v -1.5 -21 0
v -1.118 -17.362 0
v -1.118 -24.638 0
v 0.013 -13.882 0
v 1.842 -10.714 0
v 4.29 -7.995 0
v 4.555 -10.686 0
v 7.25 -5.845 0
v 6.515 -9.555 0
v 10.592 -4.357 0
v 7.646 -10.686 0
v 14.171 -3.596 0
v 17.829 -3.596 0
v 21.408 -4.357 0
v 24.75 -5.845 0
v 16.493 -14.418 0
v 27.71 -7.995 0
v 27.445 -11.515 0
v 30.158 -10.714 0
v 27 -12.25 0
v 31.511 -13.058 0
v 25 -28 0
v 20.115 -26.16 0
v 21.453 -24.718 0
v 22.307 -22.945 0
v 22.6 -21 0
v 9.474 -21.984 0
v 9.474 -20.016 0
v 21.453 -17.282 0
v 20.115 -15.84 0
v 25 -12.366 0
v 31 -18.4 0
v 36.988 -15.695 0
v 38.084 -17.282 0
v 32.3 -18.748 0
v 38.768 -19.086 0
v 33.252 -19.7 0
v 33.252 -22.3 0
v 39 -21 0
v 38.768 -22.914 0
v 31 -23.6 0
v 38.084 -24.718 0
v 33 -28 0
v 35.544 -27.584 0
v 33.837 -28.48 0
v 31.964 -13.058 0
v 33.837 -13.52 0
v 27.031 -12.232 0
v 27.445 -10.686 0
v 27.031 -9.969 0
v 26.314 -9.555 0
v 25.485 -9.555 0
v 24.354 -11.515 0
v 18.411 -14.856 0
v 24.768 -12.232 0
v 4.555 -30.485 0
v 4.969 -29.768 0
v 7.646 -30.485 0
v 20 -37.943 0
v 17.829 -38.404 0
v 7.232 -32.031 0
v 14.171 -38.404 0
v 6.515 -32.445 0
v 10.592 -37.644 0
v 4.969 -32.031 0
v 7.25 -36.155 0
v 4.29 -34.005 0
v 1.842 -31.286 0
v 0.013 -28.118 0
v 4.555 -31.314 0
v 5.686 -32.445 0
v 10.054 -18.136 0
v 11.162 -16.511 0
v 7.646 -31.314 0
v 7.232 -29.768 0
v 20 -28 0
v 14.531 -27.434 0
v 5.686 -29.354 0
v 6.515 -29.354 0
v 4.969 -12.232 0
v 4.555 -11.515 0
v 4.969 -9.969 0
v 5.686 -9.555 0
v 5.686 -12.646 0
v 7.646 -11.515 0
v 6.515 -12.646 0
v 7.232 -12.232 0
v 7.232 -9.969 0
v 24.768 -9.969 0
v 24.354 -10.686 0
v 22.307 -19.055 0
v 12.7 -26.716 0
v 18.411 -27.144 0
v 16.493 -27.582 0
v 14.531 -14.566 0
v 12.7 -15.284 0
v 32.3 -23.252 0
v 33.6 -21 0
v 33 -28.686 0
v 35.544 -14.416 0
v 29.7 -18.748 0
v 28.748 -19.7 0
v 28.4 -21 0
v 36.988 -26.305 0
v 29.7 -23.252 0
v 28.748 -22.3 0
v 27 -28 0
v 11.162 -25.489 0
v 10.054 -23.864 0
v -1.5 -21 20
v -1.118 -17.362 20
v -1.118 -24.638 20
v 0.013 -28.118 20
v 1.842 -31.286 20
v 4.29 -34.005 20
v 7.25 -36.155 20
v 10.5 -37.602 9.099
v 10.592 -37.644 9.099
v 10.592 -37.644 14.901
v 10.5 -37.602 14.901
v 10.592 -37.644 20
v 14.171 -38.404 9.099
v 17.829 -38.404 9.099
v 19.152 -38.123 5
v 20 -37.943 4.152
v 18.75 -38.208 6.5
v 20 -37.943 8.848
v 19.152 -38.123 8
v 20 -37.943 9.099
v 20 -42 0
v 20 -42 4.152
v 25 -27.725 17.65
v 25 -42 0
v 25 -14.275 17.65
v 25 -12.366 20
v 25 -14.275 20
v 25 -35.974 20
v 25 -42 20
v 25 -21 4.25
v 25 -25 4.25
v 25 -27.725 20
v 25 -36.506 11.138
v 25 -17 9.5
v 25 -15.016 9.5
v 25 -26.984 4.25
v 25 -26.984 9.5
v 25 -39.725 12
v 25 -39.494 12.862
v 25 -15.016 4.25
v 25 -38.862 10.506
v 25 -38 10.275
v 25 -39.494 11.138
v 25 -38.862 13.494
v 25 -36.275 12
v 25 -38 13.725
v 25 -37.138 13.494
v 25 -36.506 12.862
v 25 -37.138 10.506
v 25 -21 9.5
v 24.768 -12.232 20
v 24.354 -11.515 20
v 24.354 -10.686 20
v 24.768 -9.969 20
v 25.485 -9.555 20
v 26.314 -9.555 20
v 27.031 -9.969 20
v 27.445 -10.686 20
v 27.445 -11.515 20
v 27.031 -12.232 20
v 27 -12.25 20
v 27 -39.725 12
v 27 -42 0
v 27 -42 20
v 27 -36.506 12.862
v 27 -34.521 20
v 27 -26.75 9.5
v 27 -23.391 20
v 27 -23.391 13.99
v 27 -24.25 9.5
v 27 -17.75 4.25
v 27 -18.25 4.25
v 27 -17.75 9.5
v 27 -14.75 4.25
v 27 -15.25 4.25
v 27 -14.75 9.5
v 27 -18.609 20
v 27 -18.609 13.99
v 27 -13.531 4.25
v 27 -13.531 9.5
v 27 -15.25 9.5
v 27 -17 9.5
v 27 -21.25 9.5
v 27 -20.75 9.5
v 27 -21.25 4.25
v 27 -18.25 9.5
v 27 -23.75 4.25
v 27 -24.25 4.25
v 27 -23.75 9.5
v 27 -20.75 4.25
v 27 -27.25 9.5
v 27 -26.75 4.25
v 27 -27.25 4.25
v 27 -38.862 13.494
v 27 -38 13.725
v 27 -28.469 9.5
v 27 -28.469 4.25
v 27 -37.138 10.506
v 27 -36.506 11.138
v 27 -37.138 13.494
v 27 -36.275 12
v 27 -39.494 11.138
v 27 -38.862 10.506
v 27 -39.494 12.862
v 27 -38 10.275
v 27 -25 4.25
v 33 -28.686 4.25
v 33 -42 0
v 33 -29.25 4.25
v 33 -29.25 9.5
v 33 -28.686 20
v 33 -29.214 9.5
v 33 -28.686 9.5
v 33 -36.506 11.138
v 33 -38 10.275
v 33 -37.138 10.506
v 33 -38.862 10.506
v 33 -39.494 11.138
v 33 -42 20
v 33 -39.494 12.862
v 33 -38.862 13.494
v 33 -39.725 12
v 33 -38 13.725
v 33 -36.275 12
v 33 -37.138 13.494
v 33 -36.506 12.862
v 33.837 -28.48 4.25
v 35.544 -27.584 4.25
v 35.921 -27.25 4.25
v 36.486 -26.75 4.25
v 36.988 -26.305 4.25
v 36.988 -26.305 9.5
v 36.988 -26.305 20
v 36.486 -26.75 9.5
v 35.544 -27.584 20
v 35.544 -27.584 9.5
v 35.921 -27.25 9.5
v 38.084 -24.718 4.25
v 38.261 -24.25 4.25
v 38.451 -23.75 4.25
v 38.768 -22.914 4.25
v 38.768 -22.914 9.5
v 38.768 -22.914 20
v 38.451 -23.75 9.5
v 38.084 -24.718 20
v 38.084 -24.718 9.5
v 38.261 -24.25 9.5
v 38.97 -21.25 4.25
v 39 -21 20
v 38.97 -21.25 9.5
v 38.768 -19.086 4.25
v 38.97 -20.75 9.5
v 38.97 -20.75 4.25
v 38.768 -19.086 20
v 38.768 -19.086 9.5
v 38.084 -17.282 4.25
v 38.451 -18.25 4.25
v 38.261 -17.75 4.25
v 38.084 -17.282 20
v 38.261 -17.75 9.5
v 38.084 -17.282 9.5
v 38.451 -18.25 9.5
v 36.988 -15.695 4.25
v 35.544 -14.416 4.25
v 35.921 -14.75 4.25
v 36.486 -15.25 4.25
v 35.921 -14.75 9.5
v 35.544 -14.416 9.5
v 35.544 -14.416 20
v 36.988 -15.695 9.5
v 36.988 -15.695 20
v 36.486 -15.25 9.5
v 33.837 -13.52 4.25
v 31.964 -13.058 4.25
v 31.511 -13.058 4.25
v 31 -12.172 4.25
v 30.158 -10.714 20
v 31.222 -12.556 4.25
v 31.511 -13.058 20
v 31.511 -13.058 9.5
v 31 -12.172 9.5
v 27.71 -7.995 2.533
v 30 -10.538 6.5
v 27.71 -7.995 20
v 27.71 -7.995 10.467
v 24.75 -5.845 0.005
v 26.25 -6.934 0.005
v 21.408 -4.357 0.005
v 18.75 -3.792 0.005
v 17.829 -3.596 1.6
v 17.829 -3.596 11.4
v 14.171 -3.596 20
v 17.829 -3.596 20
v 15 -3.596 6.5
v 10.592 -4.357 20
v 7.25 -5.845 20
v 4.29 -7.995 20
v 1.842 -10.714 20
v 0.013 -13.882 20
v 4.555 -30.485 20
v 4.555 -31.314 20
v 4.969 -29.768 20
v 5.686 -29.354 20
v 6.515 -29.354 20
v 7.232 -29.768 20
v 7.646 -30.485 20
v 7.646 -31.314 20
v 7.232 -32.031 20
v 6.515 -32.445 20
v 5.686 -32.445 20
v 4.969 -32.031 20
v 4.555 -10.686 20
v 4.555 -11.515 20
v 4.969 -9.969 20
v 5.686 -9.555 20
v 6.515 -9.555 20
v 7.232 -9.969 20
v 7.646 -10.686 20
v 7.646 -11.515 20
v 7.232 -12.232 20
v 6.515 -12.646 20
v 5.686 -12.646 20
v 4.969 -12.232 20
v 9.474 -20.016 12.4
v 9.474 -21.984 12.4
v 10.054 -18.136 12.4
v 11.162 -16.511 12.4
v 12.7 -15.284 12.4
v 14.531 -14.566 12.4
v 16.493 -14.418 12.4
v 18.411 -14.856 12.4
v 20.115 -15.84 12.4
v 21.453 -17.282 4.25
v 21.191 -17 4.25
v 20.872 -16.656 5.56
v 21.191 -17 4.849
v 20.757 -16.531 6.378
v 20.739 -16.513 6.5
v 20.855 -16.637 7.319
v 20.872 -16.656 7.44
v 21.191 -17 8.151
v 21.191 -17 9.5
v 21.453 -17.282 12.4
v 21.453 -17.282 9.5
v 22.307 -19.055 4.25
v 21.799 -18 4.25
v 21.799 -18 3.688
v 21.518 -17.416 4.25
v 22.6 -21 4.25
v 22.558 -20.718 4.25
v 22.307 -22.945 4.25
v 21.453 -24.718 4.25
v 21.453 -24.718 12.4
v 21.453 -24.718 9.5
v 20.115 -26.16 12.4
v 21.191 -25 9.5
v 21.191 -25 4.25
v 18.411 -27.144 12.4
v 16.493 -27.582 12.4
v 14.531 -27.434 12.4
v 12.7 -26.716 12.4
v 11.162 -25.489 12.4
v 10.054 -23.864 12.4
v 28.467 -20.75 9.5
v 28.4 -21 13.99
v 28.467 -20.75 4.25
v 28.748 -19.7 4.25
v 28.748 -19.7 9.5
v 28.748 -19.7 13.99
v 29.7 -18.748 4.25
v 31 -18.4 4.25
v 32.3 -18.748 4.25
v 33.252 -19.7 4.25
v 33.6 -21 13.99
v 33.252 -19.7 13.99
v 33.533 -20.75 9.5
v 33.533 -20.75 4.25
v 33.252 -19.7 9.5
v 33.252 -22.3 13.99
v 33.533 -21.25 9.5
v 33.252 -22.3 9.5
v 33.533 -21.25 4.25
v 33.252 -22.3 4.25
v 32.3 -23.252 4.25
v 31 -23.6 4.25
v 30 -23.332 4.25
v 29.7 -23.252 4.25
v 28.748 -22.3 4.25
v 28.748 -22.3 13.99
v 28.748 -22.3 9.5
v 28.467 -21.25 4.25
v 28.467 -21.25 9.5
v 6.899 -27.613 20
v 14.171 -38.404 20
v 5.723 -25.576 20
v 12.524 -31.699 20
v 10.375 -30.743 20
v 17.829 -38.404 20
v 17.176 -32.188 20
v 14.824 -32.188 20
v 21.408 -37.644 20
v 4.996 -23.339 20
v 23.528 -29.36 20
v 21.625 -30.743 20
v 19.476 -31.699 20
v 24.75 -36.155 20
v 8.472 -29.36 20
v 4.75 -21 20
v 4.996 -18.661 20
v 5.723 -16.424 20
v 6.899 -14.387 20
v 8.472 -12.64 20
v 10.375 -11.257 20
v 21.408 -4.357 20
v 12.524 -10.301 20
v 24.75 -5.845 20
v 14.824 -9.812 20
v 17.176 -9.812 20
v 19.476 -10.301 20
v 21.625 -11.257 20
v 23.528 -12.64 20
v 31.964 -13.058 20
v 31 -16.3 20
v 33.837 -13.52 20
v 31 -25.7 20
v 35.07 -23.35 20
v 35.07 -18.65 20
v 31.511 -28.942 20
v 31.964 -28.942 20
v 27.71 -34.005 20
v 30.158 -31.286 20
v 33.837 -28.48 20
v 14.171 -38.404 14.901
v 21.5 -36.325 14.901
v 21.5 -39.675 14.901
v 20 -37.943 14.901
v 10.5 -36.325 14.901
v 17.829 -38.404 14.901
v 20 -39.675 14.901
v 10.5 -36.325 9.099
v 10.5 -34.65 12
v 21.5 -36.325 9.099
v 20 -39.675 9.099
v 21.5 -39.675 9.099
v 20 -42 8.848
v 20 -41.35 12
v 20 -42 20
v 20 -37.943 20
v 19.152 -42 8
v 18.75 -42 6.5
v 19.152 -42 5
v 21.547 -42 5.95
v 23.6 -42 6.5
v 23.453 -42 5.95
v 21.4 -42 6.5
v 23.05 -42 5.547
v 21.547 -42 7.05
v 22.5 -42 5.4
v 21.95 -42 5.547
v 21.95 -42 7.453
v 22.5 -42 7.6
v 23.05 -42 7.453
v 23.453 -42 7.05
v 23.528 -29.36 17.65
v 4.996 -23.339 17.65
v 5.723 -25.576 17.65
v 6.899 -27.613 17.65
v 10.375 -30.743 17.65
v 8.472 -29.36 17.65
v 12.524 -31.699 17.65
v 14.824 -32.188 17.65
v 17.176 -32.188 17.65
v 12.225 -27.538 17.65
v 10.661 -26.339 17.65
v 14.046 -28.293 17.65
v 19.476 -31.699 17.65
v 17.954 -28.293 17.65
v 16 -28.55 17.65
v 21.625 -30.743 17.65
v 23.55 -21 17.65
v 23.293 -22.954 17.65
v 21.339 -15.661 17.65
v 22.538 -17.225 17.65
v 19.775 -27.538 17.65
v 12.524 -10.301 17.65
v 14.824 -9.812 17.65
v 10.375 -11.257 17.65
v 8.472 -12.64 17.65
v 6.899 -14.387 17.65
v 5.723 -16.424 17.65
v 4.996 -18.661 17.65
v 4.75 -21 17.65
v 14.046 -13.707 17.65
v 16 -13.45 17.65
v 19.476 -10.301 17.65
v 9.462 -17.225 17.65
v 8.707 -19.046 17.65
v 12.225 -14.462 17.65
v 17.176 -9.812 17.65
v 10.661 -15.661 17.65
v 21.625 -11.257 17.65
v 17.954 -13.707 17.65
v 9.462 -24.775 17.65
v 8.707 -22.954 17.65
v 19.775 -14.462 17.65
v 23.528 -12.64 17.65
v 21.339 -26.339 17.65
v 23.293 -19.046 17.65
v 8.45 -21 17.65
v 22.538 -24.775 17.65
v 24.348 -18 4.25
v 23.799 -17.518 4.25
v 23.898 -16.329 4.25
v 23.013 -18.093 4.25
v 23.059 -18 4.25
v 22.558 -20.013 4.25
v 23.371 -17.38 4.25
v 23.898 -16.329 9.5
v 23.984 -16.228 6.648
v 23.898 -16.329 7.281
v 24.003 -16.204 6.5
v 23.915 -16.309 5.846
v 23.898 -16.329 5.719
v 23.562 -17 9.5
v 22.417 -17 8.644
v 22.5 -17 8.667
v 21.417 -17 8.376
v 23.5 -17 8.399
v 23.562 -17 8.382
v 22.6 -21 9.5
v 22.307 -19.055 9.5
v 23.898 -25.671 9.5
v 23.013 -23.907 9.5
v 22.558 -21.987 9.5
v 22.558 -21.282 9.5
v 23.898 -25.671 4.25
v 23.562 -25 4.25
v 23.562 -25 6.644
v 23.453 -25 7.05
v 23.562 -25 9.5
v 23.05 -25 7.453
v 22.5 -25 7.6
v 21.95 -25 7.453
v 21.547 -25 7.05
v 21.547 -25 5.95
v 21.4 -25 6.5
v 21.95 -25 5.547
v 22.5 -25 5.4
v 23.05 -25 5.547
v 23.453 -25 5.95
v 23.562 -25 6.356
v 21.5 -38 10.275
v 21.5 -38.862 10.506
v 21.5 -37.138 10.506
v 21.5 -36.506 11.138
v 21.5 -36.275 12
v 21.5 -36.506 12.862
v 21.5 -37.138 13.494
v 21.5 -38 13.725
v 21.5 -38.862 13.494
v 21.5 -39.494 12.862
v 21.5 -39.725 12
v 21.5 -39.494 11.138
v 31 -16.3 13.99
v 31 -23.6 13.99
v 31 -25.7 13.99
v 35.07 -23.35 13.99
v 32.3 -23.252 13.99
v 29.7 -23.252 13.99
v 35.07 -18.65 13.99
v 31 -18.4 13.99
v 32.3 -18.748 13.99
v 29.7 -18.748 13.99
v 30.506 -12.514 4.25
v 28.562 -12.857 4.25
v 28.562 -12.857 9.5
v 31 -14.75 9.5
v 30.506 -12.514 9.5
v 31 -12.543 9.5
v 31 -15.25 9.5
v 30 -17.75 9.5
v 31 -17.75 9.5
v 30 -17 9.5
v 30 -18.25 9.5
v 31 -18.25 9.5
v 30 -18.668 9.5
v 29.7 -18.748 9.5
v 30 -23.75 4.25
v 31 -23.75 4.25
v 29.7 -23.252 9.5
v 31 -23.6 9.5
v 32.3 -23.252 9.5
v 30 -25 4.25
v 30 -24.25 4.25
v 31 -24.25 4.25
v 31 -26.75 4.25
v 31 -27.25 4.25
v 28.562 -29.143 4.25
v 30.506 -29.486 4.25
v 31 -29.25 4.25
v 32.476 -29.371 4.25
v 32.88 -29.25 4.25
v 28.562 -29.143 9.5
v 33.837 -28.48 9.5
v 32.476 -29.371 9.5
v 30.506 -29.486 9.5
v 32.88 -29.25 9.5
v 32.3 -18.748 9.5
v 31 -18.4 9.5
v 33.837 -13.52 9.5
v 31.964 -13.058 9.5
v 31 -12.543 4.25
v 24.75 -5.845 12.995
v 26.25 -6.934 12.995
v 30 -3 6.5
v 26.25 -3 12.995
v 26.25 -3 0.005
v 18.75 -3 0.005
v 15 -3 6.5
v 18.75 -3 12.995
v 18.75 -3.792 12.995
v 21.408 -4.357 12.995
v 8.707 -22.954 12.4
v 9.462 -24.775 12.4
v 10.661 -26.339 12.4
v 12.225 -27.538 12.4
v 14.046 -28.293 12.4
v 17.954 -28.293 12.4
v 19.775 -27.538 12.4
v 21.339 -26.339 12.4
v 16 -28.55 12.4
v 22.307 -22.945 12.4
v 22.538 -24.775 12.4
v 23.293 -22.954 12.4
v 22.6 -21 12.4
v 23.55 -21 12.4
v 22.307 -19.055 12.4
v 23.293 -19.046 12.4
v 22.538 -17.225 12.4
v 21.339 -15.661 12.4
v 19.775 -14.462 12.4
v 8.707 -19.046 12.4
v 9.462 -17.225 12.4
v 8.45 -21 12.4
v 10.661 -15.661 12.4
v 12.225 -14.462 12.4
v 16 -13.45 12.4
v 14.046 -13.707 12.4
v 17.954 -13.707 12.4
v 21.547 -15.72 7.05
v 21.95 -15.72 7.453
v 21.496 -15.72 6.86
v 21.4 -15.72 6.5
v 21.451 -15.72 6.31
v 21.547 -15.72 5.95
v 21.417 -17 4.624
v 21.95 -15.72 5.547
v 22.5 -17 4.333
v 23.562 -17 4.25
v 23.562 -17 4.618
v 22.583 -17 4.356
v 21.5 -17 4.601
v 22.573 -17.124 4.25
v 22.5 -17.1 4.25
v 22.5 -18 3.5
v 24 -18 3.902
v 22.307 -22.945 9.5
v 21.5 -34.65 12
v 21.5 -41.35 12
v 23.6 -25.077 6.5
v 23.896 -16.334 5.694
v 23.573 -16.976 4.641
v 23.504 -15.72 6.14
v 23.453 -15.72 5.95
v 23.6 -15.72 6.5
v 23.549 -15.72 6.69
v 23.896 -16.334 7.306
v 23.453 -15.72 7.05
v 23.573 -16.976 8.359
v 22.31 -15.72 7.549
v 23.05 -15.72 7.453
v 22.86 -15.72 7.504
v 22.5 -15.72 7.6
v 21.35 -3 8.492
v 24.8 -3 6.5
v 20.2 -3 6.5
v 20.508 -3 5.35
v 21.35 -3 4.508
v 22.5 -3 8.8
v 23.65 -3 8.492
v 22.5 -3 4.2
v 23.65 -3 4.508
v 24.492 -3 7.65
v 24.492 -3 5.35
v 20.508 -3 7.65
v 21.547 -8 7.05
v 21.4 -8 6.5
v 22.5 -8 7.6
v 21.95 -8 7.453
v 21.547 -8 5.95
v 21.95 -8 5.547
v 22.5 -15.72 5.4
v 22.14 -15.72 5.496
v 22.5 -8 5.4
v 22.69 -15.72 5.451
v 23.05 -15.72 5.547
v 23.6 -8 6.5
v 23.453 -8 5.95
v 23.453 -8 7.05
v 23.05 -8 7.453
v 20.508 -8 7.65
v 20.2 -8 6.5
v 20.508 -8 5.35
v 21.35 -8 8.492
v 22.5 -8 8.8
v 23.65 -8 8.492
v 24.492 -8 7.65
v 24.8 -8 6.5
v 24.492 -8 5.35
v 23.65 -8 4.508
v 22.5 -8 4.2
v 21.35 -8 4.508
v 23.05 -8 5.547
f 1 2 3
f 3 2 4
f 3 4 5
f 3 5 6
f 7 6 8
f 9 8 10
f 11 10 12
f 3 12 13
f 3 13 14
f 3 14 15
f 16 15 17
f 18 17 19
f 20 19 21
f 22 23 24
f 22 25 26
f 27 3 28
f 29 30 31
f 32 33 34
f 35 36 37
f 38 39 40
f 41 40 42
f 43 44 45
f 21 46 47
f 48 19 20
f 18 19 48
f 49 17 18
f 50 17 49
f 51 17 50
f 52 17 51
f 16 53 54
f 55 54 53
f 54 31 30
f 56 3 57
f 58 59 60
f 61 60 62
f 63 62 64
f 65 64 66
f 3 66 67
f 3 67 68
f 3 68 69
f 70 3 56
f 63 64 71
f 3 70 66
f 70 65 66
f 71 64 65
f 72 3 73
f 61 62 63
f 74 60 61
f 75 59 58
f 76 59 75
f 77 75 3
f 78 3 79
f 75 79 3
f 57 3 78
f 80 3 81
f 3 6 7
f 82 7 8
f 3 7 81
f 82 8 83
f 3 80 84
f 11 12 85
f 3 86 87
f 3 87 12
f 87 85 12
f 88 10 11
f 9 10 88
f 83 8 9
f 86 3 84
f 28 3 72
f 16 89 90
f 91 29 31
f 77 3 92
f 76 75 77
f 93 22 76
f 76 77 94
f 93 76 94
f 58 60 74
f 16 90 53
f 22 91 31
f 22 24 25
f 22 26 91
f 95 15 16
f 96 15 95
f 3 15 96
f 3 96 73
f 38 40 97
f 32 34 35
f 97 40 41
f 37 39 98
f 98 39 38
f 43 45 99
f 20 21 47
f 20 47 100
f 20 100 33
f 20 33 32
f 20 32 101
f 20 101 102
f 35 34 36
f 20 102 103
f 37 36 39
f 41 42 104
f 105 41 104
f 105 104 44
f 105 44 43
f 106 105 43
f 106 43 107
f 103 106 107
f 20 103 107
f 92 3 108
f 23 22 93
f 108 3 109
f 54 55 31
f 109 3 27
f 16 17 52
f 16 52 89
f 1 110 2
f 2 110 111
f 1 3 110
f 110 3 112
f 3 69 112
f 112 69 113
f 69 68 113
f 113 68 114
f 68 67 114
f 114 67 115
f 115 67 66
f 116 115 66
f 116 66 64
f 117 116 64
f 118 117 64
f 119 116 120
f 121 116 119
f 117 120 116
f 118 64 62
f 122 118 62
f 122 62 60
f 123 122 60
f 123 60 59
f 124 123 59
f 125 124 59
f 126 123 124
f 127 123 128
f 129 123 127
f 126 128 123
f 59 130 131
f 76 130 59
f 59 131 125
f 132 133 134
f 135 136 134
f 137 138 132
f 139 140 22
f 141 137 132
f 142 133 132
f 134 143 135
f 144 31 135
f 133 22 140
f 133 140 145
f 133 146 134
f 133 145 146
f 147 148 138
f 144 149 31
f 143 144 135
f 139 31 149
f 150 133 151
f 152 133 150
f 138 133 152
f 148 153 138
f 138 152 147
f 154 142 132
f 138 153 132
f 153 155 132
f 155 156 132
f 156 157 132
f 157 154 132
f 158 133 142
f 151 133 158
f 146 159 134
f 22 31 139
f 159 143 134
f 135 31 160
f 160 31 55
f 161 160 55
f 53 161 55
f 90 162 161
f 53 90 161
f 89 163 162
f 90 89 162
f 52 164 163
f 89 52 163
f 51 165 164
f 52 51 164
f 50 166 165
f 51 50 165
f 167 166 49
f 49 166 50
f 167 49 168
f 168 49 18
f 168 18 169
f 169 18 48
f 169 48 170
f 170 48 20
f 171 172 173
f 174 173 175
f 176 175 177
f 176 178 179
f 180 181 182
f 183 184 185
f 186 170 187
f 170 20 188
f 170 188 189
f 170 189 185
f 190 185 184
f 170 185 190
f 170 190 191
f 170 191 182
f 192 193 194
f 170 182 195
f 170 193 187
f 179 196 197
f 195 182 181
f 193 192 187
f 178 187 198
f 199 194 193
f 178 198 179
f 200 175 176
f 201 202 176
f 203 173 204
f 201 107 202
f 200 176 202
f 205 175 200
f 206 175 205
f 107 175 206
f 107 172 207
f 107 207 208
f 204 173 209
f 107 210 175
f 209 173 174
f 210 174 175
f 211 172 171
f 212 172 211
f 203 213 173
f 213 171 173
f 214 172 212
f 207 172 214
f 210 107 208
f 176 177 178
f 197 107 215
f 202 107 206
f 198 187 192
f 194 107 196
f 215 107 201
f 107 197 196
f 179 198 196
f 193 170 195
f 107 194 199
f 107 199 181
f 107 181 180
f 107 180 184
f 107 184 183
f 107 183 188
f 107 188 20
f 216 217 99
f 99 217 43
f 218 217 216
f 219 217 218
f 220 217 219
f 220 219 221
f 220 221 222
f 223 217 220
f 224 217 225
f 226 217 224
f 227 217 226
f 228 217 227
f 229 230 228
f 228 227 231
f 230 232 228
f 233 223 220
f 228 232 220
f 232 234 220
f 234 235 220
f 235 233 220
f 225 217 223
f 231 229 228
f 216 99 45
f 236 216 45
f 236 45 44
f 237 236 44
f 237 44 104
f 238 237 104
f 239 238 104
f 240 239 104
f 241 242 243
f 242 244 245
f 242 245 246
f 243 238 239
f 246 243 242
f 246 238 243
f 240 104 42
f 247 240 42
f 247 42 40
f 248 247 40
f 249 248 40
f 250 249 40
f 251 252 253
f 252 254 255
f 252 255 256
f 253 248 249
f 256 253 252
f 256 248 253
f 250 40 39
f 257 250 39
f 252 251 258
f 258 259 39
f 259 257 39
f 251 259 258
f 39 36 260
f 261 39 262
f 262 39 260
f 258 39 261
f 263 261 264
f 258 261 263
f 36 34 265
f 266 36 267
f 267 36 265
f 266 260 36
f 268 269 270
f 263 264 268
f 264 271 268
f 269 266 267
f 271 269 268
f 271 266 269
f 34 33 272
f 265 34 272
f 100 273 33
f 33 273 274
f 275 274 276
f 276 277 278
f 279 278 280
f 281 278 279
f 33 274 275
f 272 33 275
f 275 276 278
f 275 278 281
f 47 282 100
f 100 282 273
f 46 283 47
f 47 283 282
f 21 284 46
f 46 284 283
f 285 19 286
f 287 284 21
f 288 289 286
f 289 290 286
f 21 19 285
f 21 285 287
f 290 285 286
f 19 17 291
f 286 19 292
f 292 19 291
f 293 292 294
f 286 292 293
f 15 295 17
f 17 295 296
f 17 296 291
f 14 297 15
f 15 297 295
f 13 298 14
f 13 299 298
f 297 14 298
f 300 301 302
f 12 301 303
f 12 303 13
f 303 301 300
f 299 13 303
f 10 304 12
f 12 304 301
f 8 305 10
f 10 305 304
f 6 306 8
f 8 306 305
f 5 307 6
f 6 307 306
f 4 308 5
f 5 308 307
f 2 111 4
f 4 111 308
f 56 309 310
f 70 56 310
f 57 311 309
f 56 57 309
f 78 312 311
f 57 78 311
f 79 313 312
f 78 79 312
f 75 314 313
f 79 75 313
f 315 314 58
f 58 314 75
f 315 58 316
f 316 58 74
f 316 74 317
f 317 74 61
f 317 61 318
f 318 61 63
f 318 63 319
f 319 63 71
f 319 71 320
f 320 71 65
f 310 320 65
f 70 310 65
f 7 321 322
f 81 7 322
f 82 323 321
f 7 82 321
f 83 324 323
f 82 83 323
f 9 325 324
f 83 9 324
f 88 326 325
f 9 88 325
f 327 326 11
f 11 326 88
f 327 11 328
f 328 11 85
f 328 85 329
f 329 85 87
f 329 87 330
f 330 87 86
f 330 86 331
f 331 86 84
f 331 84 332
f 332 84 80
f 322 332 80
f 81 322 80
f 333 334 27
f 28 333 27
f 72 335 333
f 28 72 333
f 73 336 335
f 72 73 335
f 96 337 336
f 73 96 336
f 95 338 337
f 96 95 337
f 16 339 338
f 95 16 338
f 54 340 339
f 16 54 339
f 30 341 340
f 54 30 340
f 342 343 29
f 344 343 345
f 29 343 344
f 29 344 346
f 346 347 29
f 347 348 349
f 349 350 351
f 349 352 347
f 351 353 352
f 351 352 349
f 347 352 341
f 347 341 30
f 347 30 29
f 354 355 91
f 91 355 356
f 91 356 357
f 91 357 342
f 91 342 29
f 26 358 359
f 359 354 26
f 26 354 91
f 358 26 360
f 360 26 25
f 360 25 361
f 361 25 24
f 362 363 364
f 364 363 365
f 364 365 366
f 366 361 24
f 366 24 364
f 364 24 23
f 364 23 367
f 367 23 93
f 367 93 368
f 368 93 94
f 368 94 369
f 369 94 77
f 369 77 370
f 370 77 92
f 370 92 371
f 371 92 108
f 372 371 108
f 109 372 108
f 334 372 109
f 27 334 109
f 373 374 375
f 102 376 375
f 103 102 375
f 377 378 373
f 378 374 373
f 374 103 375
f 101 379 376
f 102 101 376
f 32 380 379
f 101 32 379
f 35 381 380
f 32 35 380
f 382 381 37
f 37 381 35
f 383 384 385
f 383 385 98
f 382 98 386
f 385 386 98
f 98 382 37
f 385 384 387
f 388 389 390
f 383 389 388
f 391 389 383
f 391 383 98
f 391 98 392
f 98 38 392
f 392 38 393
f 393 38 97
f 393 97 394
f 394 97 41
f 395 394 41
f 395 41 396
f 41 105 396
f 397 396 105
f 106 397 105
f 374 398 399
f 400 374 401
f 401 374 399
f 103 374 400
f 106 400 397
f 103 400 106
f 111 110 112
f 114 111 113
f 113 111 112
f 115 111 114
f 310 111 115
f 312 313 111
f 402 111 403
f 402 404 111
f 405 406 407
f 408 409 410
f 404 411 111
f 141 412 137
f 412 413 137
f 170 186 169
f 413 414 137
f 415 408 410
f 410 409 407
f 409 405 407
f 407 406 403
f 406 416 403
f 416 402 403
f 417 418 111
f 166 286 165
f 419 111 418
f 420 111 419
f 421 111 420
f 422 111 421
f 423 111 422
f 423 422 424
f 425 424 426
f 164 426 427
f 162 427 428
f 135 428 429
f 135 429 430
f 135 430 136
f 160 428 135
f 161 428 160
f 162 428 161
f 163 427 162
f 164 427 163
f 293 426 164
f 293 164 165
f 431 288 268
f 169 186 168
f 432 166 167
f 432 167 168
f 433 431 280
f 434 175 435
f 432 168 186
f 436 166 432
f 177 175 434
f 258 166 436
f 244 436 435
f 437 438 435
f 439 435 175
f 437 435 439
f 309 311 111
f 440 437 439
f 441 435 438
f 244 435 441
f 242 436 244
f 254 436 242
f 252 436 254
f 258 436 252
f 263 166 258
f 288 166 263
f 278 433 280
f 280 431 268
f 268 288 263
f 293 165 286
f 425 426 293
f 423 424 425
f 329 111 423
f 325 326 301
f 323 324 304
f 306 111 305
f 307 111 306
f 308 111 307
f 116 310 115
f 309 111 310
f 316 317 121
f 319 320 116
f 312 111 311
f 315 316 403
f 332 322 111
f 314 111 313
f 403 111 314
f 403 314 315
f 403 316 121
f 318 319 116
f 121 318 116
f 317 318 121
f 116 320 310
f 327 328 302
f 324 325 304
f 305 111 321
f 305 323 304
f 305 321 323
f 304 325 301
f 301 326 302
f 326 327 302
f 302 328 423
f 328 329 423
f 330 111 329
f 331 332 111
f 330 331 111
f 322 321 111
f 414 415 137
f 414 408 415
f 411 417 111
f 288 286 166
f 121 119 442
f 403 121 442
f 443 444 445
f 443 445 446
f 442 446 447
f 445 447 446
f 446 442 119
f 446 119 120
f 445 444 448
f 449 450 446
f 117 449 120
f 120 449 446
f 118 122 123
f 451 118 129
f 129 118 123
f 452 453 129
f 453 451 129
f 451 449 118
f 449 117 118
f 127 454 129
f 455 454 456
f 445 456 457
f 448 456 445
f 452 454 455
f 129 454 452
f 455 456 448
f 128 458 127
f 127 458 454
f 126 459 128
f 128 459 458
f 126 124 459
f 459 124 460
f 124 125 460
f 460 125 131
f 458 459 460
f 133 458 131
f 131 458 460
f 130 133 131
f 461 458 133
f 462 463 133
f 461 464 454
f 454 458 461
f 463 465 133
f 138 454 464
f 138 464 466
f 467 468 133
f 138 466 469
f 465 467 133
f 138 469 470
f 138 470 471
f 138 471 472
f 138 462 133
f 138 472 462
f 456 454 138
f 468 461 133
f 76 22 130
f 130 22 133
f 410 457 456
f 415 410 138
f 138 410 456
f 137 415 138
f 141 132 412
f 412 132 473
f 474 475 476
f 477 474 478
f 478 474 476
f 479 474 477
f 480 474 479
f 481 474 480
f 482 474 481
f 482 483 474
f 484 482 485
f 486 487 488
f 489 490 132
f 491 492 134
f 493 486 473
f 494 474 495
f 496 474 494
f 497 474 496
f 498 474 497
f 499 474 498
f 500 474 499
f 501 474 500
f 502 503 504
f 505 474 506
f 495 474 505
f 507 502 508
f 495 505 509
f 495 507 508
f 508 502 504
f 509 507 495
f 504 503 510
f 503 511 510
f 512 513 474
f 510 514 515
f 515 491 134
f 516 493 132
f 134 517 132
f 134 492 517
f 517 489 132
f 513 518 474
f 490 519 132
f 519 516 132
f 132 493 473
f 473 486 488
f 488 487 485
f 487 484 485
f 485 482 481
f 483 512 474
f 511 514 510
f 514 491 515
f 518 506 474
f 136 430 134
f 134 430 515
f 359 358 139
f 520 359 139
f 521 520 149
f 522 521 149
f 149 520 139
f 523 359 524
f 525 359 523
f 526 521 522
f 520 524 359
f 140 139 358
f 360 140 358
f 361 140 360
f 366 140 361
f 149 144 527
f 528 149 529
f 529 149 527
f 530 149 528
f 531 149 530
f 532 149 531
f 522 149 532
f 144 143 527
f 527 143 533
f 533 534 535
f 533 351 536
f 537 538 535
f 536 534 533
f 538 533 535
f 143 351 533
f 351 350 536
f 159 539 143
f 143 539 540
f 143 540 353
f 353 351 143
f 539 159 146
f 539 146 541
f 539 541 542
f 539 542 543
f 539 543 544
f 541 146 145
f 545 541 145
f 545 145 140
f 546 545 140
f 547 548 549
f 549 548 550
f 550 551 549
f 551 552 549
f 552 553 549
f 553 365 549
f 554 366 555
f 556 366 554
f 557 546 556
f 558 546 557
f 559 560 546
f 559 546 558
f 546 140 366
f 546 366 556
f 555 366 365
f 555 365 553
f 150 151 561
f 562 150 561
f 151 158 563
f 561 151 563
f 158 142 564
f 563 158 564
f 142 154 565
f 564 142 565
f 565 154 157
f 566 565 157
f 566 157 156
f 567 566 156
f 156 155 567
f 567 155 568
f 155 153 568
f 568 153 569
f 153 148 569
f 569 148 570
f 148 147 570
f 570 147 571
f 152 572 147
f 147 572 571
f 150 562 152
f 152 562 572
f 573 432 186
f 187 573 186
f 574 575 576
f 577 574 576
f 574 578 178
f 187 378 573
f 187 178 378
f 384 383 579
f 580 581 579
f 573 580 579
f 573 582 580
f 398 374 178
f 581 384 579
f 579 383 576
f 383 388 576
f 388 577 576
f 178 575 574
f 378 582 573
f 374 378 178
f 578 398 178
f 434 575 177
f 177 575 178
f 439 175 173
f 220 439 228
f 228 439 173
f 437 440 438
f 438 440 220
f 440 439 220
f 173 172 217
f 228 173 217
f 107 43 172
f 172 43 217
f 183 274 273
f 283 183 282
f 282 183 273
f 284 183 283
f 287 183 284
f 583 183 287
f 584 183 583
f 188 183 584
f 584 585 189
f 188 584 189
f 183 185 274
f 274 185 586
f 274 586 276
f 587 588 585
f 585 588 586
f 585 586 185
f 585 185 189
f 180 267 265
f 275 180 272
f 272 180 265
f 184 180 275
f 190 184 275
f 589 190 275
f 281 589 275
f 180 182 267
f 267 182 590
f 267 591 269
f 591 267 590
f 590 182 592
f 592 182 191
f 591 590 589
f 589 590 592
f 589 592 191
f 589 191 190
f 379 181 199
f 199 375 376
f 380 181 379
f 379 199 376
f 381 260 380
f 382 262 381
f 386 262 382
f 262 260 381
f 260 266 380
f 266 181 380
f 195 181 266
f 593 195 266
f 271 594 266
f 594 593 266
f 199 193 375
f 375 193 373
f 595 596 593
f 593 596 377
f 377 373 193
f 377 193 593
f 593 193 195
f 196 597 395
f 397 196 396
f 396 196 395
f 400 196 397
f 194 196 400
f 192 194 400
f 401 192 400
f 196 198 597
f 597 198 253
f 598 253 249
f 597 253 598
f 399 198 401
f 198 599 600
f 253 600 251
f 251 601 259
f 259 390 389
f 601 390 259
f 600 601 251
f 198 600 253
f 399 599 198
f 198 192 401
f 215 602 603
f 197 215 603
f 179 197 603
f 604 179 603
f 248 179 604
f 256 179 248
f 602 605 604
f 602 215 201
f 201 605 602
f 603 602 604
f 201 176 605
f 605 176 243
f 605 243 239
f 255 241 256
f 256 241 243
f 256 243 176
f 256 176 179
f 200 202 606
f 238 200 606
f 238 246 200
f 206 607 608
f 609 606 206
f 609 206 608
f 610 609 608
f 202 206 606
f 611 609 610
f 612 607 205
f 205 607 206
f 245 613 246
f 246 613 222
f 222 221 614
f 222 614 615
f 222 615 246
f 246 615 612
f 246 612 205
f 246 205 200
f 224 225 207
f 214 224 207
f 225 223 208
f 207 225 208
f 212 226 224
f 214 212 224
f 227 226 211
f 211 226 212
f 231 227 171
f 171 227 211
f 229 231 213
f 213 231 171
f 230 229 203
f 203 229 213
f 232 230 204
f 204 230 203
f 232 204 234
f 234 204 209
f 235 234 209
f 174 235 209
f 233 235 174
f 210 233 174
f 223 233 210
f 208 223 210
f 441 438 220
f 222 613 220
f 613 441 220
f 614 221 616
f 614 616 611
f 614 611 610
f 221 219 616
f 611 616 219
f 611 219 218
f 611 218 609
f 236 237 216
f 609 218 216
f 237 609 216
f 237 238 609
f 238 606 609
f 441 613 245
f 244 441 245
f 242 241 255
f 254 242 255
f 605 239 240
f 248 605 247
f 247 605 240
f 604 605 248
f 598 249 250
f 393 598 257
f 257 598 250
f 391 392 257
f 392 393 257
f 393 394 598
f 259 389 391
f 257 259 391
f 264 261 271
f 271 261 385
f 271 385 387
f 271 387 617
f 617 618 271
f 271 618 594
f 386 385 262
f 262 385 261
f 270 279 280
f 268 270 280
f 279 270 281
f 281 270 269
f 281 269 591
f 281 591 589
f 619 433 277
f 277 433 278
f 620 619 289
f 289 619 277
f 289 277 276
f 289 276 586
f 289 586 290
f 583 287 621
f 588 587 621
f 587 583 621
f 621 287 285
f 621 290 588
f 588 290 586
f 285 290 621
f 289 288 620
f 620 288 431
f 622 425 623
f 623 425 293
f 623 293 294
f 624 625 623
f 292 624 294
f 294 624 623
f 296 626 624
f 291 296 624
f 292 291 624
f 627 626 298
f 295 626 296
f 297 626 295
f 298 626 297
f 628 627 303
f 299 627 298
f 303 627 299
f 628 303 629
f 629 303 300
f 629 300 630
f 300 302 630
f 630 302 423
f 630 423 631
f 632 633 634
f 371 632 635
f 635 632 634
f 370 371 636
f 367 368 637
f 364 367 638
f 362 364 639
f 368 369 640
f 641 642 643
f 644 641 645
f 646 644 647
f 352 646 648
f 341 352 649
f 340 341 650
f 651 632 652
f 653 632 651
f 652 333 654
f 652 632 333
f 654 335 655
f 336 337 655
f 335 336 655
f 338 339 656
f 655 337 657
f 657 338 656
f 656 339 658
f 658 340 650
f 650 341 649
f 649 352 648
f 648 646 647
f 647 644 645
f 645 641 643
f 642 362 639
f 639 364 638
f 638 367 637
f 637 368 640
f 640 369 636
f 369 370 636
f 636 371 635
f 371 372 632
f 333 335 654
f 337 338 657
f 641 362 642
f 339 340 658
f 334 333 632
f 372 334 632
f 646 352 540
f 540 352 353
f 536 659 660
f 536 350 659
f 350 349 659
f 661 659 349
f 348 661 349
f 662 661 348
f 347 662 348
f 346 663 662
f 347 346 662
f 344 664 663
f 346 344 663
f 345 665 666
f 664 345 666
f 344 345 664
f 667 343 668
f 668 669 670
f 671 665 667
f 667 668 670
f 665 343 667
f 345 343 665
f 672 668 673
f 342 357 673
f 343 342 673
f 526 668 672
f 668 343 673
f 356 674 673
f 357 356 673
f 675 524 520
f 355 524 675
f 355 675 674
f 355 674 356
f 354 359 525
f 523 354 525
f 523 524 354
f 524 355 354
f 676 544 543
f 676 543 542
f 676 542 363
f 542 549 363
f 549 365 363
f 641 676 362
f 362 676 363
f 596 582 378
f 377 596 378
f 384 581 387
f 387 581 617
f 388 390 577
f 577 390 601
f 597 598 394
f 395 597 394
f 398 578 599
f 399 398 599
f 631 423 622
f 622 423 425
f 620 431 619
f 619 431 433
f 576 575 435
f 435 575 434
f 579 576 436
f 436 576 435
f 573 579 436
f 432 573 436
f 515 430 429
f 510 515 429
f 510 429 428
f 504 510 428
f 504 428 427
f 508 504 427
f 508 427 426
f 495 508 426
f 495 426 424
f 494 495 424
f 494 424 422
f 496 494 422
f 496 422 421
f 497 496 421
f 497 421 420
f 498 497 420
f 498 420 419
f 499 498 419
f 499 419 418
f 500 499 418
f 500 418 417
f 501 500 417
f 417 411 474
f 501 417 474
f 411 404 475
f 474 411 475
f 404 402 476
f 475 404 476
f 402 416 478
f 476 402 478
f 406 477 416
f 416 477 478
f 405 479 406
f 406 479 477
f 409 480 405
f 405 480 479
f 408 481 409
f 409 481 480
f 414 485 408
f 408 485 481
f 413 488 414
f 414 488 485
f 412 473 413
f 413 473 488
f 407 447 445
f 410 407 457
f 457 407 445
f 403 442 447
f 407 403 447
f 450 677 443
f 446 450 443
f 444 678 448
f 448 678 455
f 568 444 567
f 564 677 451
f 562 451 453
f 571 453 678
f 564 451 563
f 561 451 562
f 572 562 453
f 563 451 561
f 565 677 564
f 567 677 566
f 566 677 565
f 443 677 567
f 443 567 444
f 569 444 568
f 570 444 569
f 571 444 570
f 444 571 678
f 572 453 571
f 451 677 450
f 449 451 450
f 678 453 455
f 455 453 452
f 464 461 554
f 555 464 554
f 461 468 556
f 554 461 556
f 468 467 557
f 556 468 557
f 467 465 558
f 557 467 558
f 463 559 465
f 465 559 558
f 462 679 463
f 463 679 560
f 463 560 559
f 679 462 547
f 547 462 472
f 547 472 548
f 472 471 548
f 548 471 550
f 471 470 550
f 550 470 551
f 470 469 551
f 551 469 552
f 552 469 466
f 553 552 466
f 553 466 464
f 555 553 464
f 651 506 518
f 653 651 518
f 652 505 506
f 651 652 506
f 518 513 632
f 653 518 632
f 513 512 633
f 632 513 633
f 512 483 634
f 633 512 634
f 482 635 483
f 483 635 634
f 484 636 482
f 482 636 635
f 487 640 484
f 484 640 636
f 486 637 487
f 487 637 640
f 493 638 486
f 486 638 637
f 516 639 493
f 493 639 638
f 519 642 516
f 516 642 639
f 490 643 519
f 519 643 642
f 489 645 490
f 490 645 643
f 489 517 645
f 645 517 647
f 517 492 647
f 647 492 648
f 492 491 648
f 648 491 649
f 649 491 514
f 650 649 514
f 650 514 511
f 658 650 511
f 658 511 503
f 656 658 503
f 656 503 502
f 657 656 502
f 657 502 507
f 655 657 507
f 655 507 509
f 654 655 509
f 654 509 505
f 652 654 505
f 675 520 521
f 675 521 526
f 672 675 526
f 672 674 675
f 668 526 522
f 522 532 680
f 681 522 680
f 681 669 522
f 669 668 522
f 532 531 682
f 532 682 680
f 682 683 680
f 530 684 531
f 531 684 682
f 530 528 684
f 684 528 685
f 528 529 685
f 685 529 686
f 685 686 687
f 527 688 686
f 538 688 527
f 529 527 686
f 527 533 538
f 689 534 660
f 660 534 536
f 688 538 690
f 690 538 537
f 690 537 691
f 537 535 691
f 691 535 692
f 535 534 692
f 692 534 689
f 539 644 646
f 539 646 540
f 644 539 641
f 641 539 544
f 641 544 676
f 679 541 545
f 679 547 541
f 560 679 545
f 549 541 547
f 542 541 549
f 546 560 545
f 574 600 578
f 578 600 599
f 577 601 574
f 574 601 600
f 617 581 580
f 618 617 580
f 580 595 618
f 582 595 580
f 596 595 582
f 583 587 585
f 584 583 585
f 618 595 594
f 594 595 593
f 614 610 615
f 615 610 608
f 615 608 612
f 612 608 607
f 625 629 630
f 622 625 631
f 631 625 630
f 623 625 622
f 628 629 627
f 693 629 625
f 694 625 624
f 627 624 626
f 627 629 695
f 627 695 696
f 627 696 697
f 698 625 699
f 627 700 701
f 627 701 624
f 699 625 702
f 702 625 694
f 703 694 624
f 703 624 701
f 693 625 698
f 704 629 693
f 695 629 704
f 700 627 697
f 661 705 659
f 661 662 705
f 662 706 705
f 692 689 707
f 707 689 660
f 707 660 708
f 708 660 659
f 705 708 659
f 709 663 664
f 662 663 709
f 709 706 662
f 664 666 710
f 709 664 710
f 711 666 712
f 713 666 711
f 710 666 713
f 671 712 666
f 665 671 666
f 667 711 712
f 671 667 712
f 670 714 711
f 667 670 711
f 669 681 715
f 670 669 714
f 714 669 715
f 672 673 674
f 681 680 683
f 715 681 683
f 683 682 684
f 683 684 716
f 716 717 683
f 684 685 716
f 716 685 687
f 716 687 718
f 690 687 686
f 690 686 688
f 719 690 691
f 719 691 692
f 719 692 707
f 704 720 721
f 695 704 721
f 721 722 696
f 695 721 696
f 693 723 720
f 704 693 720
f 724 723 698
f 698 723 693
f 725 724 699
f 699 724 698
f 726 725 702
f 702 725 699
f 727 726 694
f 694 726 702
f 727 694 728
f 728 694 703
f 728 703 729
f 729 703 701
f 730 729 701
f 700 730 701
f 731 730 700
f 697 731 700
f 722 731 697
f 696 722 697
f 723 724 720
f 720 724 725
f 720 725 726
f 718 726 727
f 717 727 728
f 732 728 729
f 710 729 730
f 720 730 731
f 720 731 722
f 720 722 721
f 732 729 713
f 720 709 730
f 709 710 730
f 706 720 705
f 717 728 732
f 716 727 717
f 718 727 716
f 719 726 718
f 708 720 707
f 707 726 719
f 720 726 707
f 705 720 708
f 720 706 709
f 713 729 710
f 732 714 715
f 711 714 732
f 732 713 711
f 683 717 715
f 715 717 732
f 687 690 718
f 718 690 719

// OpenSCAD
// file: configuration.scad
// Increase this if your slicer or printer make holes too tight.
extra_radius = 0.1;

// OD = outside diameter, corner to corner.
m3_nut_od = 6.1;
m3_nut_radius = m3_nut_od/2 + 0.2 + extra_radius;
m3_washer_radius = 3.5 + extra_radius;

// Major diameter of metric 3mm thread.
m3_major = 2.85;
m3_radius = m3_major/2 + extra_radius;
m3_wide_radius = m3_major/2 + extra_radius + 0.2;

// NEMA17 stepper motors.
motor_shaft_diameter = 5;
motor_shaft_radius = motor_shaft_diameter/2 + extra_radius;

// Frame brackets. M3x8mm screws work best with 3.6 mm brackets.
thickness = 3.6;

// OpenBeam or Misumi. Currently only 15x15 mm, but there is a plan
// to make models more parametric and allow 20x20 mm in the future.
extrusion = 15;

// HiWin, THK or Misumi
rail_width = 12;
rail_thickness = 8;

// Placement for the NEMA17 stepper motors.
motor_offset = 44;
motor_length = 47;
// main file
// Based on "Makergear Filament drive goes Bowden" by Luke321
// http://www.thingiverse.com/thing:63674

include <configuration.scad>;

filament_offset = 22.5;

module extruder() {
  rotate([90, 0, 0]) difference() {
    union() {
      //main cylinder
      translate([16,20,21]) rotate([90,0,0]) cylinder(h=20, r=17.5);

      //bearing mount
      translate([31,20,21]) rotate([90,0,0]) cylinder (h=20, r=8);

      //pushfit/pneufit mount
      translate([filament_offset, 6.5, 13])
        cylinder(r=7.5, h=20, center=true, $fn=6);

      //filament support
      translate([21.75,6.5,34]) rotate([0,0,0]) cylinder (h=8, r=3, $fn=12);

      //clamp
      translate([20, 0, 28]) cube([13, 20, 14]);
    }

    //pulley opening
    translate([16,21,21]) rotate([90,0,0]){
      cylinder (h=22, r=6.6);

      rotate([0,0,45]) {
        // translate([14,0,0]) cylinder(h=22, r=1.6, $fn=12);
        translate([0,14,0]) cylinder(h=22, r=1.6, $fn=12);
        translate([-14,0,0]) cylinder(h=22, r=1.6, $fn=12);
        translate([0,-14,0]) cylinder(h=22, r=1.6, $fn=12);
      }
    }

    //gearhead indentation
    translate([16,21,21]) rotate([90,0,0]) cylinder (h=3.35, r=11.25);

    //pulley hub indentation
    translate([16,20-2,21]) rotate([90,0,0]) cylinder (h=5.6, r=7.55);

    //bearing screws
    translate([31,21,21]) rotate([90,0,0]) cylinder (h=22, r=2.6, $fn=12);
    #translate([31,22,21]) rotate([90,30,0]) cylinder (h=8.01, r=4.7, $fn=6);

    //bearing
    difference() {
      union() {
        translate([31,9.5,21]) rotate([90,0,0]) cylinder (h=5.25, r=8.5);
        translate([31,9.5-5.25,21-8.25-2]) cube([20, 5.25, 18.5]);
        //opening between bearing and pulley
        translate([20,9.5-5.25,21-8.25+3.25+1]) cube([10, 5.25, 8]);
      }
      //removable supports
      for (z = [15:3:27]) {
        translate([36, 10, z]) # cube([20, 20, 0.5], center=true);
      }
    }

    //filament path chamfer
    translate([filament_offset,6.5,15]) rotate([0,0,0]) #
      cylinder(h=3, r1=0.5, r2=3, $fn=12);

    //filament path
    translate([filament_offset,6.5,-10]) rotate([0,0,0]) #
      cylinder(h=60, r=1.1, $fn=12);

    //pushfit/pneufit mount
    translate([filament_offset, 6.5, 0]) # cylinder(r=2.3, h=8, $fn=12);

    //clamp slit
    translate([25,-1,10]) cube([2, 22, 35]);
    //clamp nut
    translate([10.5,12,38]) rotate([0,90,0])
      cylinder(h=11, r=m3_nut_radius, $fn=6);
    //clamp screw hole
    translate([15,12,38]) rotate([0,90,0])
      cylinder(h=20, r=m3_wide_radius, $fn=12);
  }
}

extruder();
